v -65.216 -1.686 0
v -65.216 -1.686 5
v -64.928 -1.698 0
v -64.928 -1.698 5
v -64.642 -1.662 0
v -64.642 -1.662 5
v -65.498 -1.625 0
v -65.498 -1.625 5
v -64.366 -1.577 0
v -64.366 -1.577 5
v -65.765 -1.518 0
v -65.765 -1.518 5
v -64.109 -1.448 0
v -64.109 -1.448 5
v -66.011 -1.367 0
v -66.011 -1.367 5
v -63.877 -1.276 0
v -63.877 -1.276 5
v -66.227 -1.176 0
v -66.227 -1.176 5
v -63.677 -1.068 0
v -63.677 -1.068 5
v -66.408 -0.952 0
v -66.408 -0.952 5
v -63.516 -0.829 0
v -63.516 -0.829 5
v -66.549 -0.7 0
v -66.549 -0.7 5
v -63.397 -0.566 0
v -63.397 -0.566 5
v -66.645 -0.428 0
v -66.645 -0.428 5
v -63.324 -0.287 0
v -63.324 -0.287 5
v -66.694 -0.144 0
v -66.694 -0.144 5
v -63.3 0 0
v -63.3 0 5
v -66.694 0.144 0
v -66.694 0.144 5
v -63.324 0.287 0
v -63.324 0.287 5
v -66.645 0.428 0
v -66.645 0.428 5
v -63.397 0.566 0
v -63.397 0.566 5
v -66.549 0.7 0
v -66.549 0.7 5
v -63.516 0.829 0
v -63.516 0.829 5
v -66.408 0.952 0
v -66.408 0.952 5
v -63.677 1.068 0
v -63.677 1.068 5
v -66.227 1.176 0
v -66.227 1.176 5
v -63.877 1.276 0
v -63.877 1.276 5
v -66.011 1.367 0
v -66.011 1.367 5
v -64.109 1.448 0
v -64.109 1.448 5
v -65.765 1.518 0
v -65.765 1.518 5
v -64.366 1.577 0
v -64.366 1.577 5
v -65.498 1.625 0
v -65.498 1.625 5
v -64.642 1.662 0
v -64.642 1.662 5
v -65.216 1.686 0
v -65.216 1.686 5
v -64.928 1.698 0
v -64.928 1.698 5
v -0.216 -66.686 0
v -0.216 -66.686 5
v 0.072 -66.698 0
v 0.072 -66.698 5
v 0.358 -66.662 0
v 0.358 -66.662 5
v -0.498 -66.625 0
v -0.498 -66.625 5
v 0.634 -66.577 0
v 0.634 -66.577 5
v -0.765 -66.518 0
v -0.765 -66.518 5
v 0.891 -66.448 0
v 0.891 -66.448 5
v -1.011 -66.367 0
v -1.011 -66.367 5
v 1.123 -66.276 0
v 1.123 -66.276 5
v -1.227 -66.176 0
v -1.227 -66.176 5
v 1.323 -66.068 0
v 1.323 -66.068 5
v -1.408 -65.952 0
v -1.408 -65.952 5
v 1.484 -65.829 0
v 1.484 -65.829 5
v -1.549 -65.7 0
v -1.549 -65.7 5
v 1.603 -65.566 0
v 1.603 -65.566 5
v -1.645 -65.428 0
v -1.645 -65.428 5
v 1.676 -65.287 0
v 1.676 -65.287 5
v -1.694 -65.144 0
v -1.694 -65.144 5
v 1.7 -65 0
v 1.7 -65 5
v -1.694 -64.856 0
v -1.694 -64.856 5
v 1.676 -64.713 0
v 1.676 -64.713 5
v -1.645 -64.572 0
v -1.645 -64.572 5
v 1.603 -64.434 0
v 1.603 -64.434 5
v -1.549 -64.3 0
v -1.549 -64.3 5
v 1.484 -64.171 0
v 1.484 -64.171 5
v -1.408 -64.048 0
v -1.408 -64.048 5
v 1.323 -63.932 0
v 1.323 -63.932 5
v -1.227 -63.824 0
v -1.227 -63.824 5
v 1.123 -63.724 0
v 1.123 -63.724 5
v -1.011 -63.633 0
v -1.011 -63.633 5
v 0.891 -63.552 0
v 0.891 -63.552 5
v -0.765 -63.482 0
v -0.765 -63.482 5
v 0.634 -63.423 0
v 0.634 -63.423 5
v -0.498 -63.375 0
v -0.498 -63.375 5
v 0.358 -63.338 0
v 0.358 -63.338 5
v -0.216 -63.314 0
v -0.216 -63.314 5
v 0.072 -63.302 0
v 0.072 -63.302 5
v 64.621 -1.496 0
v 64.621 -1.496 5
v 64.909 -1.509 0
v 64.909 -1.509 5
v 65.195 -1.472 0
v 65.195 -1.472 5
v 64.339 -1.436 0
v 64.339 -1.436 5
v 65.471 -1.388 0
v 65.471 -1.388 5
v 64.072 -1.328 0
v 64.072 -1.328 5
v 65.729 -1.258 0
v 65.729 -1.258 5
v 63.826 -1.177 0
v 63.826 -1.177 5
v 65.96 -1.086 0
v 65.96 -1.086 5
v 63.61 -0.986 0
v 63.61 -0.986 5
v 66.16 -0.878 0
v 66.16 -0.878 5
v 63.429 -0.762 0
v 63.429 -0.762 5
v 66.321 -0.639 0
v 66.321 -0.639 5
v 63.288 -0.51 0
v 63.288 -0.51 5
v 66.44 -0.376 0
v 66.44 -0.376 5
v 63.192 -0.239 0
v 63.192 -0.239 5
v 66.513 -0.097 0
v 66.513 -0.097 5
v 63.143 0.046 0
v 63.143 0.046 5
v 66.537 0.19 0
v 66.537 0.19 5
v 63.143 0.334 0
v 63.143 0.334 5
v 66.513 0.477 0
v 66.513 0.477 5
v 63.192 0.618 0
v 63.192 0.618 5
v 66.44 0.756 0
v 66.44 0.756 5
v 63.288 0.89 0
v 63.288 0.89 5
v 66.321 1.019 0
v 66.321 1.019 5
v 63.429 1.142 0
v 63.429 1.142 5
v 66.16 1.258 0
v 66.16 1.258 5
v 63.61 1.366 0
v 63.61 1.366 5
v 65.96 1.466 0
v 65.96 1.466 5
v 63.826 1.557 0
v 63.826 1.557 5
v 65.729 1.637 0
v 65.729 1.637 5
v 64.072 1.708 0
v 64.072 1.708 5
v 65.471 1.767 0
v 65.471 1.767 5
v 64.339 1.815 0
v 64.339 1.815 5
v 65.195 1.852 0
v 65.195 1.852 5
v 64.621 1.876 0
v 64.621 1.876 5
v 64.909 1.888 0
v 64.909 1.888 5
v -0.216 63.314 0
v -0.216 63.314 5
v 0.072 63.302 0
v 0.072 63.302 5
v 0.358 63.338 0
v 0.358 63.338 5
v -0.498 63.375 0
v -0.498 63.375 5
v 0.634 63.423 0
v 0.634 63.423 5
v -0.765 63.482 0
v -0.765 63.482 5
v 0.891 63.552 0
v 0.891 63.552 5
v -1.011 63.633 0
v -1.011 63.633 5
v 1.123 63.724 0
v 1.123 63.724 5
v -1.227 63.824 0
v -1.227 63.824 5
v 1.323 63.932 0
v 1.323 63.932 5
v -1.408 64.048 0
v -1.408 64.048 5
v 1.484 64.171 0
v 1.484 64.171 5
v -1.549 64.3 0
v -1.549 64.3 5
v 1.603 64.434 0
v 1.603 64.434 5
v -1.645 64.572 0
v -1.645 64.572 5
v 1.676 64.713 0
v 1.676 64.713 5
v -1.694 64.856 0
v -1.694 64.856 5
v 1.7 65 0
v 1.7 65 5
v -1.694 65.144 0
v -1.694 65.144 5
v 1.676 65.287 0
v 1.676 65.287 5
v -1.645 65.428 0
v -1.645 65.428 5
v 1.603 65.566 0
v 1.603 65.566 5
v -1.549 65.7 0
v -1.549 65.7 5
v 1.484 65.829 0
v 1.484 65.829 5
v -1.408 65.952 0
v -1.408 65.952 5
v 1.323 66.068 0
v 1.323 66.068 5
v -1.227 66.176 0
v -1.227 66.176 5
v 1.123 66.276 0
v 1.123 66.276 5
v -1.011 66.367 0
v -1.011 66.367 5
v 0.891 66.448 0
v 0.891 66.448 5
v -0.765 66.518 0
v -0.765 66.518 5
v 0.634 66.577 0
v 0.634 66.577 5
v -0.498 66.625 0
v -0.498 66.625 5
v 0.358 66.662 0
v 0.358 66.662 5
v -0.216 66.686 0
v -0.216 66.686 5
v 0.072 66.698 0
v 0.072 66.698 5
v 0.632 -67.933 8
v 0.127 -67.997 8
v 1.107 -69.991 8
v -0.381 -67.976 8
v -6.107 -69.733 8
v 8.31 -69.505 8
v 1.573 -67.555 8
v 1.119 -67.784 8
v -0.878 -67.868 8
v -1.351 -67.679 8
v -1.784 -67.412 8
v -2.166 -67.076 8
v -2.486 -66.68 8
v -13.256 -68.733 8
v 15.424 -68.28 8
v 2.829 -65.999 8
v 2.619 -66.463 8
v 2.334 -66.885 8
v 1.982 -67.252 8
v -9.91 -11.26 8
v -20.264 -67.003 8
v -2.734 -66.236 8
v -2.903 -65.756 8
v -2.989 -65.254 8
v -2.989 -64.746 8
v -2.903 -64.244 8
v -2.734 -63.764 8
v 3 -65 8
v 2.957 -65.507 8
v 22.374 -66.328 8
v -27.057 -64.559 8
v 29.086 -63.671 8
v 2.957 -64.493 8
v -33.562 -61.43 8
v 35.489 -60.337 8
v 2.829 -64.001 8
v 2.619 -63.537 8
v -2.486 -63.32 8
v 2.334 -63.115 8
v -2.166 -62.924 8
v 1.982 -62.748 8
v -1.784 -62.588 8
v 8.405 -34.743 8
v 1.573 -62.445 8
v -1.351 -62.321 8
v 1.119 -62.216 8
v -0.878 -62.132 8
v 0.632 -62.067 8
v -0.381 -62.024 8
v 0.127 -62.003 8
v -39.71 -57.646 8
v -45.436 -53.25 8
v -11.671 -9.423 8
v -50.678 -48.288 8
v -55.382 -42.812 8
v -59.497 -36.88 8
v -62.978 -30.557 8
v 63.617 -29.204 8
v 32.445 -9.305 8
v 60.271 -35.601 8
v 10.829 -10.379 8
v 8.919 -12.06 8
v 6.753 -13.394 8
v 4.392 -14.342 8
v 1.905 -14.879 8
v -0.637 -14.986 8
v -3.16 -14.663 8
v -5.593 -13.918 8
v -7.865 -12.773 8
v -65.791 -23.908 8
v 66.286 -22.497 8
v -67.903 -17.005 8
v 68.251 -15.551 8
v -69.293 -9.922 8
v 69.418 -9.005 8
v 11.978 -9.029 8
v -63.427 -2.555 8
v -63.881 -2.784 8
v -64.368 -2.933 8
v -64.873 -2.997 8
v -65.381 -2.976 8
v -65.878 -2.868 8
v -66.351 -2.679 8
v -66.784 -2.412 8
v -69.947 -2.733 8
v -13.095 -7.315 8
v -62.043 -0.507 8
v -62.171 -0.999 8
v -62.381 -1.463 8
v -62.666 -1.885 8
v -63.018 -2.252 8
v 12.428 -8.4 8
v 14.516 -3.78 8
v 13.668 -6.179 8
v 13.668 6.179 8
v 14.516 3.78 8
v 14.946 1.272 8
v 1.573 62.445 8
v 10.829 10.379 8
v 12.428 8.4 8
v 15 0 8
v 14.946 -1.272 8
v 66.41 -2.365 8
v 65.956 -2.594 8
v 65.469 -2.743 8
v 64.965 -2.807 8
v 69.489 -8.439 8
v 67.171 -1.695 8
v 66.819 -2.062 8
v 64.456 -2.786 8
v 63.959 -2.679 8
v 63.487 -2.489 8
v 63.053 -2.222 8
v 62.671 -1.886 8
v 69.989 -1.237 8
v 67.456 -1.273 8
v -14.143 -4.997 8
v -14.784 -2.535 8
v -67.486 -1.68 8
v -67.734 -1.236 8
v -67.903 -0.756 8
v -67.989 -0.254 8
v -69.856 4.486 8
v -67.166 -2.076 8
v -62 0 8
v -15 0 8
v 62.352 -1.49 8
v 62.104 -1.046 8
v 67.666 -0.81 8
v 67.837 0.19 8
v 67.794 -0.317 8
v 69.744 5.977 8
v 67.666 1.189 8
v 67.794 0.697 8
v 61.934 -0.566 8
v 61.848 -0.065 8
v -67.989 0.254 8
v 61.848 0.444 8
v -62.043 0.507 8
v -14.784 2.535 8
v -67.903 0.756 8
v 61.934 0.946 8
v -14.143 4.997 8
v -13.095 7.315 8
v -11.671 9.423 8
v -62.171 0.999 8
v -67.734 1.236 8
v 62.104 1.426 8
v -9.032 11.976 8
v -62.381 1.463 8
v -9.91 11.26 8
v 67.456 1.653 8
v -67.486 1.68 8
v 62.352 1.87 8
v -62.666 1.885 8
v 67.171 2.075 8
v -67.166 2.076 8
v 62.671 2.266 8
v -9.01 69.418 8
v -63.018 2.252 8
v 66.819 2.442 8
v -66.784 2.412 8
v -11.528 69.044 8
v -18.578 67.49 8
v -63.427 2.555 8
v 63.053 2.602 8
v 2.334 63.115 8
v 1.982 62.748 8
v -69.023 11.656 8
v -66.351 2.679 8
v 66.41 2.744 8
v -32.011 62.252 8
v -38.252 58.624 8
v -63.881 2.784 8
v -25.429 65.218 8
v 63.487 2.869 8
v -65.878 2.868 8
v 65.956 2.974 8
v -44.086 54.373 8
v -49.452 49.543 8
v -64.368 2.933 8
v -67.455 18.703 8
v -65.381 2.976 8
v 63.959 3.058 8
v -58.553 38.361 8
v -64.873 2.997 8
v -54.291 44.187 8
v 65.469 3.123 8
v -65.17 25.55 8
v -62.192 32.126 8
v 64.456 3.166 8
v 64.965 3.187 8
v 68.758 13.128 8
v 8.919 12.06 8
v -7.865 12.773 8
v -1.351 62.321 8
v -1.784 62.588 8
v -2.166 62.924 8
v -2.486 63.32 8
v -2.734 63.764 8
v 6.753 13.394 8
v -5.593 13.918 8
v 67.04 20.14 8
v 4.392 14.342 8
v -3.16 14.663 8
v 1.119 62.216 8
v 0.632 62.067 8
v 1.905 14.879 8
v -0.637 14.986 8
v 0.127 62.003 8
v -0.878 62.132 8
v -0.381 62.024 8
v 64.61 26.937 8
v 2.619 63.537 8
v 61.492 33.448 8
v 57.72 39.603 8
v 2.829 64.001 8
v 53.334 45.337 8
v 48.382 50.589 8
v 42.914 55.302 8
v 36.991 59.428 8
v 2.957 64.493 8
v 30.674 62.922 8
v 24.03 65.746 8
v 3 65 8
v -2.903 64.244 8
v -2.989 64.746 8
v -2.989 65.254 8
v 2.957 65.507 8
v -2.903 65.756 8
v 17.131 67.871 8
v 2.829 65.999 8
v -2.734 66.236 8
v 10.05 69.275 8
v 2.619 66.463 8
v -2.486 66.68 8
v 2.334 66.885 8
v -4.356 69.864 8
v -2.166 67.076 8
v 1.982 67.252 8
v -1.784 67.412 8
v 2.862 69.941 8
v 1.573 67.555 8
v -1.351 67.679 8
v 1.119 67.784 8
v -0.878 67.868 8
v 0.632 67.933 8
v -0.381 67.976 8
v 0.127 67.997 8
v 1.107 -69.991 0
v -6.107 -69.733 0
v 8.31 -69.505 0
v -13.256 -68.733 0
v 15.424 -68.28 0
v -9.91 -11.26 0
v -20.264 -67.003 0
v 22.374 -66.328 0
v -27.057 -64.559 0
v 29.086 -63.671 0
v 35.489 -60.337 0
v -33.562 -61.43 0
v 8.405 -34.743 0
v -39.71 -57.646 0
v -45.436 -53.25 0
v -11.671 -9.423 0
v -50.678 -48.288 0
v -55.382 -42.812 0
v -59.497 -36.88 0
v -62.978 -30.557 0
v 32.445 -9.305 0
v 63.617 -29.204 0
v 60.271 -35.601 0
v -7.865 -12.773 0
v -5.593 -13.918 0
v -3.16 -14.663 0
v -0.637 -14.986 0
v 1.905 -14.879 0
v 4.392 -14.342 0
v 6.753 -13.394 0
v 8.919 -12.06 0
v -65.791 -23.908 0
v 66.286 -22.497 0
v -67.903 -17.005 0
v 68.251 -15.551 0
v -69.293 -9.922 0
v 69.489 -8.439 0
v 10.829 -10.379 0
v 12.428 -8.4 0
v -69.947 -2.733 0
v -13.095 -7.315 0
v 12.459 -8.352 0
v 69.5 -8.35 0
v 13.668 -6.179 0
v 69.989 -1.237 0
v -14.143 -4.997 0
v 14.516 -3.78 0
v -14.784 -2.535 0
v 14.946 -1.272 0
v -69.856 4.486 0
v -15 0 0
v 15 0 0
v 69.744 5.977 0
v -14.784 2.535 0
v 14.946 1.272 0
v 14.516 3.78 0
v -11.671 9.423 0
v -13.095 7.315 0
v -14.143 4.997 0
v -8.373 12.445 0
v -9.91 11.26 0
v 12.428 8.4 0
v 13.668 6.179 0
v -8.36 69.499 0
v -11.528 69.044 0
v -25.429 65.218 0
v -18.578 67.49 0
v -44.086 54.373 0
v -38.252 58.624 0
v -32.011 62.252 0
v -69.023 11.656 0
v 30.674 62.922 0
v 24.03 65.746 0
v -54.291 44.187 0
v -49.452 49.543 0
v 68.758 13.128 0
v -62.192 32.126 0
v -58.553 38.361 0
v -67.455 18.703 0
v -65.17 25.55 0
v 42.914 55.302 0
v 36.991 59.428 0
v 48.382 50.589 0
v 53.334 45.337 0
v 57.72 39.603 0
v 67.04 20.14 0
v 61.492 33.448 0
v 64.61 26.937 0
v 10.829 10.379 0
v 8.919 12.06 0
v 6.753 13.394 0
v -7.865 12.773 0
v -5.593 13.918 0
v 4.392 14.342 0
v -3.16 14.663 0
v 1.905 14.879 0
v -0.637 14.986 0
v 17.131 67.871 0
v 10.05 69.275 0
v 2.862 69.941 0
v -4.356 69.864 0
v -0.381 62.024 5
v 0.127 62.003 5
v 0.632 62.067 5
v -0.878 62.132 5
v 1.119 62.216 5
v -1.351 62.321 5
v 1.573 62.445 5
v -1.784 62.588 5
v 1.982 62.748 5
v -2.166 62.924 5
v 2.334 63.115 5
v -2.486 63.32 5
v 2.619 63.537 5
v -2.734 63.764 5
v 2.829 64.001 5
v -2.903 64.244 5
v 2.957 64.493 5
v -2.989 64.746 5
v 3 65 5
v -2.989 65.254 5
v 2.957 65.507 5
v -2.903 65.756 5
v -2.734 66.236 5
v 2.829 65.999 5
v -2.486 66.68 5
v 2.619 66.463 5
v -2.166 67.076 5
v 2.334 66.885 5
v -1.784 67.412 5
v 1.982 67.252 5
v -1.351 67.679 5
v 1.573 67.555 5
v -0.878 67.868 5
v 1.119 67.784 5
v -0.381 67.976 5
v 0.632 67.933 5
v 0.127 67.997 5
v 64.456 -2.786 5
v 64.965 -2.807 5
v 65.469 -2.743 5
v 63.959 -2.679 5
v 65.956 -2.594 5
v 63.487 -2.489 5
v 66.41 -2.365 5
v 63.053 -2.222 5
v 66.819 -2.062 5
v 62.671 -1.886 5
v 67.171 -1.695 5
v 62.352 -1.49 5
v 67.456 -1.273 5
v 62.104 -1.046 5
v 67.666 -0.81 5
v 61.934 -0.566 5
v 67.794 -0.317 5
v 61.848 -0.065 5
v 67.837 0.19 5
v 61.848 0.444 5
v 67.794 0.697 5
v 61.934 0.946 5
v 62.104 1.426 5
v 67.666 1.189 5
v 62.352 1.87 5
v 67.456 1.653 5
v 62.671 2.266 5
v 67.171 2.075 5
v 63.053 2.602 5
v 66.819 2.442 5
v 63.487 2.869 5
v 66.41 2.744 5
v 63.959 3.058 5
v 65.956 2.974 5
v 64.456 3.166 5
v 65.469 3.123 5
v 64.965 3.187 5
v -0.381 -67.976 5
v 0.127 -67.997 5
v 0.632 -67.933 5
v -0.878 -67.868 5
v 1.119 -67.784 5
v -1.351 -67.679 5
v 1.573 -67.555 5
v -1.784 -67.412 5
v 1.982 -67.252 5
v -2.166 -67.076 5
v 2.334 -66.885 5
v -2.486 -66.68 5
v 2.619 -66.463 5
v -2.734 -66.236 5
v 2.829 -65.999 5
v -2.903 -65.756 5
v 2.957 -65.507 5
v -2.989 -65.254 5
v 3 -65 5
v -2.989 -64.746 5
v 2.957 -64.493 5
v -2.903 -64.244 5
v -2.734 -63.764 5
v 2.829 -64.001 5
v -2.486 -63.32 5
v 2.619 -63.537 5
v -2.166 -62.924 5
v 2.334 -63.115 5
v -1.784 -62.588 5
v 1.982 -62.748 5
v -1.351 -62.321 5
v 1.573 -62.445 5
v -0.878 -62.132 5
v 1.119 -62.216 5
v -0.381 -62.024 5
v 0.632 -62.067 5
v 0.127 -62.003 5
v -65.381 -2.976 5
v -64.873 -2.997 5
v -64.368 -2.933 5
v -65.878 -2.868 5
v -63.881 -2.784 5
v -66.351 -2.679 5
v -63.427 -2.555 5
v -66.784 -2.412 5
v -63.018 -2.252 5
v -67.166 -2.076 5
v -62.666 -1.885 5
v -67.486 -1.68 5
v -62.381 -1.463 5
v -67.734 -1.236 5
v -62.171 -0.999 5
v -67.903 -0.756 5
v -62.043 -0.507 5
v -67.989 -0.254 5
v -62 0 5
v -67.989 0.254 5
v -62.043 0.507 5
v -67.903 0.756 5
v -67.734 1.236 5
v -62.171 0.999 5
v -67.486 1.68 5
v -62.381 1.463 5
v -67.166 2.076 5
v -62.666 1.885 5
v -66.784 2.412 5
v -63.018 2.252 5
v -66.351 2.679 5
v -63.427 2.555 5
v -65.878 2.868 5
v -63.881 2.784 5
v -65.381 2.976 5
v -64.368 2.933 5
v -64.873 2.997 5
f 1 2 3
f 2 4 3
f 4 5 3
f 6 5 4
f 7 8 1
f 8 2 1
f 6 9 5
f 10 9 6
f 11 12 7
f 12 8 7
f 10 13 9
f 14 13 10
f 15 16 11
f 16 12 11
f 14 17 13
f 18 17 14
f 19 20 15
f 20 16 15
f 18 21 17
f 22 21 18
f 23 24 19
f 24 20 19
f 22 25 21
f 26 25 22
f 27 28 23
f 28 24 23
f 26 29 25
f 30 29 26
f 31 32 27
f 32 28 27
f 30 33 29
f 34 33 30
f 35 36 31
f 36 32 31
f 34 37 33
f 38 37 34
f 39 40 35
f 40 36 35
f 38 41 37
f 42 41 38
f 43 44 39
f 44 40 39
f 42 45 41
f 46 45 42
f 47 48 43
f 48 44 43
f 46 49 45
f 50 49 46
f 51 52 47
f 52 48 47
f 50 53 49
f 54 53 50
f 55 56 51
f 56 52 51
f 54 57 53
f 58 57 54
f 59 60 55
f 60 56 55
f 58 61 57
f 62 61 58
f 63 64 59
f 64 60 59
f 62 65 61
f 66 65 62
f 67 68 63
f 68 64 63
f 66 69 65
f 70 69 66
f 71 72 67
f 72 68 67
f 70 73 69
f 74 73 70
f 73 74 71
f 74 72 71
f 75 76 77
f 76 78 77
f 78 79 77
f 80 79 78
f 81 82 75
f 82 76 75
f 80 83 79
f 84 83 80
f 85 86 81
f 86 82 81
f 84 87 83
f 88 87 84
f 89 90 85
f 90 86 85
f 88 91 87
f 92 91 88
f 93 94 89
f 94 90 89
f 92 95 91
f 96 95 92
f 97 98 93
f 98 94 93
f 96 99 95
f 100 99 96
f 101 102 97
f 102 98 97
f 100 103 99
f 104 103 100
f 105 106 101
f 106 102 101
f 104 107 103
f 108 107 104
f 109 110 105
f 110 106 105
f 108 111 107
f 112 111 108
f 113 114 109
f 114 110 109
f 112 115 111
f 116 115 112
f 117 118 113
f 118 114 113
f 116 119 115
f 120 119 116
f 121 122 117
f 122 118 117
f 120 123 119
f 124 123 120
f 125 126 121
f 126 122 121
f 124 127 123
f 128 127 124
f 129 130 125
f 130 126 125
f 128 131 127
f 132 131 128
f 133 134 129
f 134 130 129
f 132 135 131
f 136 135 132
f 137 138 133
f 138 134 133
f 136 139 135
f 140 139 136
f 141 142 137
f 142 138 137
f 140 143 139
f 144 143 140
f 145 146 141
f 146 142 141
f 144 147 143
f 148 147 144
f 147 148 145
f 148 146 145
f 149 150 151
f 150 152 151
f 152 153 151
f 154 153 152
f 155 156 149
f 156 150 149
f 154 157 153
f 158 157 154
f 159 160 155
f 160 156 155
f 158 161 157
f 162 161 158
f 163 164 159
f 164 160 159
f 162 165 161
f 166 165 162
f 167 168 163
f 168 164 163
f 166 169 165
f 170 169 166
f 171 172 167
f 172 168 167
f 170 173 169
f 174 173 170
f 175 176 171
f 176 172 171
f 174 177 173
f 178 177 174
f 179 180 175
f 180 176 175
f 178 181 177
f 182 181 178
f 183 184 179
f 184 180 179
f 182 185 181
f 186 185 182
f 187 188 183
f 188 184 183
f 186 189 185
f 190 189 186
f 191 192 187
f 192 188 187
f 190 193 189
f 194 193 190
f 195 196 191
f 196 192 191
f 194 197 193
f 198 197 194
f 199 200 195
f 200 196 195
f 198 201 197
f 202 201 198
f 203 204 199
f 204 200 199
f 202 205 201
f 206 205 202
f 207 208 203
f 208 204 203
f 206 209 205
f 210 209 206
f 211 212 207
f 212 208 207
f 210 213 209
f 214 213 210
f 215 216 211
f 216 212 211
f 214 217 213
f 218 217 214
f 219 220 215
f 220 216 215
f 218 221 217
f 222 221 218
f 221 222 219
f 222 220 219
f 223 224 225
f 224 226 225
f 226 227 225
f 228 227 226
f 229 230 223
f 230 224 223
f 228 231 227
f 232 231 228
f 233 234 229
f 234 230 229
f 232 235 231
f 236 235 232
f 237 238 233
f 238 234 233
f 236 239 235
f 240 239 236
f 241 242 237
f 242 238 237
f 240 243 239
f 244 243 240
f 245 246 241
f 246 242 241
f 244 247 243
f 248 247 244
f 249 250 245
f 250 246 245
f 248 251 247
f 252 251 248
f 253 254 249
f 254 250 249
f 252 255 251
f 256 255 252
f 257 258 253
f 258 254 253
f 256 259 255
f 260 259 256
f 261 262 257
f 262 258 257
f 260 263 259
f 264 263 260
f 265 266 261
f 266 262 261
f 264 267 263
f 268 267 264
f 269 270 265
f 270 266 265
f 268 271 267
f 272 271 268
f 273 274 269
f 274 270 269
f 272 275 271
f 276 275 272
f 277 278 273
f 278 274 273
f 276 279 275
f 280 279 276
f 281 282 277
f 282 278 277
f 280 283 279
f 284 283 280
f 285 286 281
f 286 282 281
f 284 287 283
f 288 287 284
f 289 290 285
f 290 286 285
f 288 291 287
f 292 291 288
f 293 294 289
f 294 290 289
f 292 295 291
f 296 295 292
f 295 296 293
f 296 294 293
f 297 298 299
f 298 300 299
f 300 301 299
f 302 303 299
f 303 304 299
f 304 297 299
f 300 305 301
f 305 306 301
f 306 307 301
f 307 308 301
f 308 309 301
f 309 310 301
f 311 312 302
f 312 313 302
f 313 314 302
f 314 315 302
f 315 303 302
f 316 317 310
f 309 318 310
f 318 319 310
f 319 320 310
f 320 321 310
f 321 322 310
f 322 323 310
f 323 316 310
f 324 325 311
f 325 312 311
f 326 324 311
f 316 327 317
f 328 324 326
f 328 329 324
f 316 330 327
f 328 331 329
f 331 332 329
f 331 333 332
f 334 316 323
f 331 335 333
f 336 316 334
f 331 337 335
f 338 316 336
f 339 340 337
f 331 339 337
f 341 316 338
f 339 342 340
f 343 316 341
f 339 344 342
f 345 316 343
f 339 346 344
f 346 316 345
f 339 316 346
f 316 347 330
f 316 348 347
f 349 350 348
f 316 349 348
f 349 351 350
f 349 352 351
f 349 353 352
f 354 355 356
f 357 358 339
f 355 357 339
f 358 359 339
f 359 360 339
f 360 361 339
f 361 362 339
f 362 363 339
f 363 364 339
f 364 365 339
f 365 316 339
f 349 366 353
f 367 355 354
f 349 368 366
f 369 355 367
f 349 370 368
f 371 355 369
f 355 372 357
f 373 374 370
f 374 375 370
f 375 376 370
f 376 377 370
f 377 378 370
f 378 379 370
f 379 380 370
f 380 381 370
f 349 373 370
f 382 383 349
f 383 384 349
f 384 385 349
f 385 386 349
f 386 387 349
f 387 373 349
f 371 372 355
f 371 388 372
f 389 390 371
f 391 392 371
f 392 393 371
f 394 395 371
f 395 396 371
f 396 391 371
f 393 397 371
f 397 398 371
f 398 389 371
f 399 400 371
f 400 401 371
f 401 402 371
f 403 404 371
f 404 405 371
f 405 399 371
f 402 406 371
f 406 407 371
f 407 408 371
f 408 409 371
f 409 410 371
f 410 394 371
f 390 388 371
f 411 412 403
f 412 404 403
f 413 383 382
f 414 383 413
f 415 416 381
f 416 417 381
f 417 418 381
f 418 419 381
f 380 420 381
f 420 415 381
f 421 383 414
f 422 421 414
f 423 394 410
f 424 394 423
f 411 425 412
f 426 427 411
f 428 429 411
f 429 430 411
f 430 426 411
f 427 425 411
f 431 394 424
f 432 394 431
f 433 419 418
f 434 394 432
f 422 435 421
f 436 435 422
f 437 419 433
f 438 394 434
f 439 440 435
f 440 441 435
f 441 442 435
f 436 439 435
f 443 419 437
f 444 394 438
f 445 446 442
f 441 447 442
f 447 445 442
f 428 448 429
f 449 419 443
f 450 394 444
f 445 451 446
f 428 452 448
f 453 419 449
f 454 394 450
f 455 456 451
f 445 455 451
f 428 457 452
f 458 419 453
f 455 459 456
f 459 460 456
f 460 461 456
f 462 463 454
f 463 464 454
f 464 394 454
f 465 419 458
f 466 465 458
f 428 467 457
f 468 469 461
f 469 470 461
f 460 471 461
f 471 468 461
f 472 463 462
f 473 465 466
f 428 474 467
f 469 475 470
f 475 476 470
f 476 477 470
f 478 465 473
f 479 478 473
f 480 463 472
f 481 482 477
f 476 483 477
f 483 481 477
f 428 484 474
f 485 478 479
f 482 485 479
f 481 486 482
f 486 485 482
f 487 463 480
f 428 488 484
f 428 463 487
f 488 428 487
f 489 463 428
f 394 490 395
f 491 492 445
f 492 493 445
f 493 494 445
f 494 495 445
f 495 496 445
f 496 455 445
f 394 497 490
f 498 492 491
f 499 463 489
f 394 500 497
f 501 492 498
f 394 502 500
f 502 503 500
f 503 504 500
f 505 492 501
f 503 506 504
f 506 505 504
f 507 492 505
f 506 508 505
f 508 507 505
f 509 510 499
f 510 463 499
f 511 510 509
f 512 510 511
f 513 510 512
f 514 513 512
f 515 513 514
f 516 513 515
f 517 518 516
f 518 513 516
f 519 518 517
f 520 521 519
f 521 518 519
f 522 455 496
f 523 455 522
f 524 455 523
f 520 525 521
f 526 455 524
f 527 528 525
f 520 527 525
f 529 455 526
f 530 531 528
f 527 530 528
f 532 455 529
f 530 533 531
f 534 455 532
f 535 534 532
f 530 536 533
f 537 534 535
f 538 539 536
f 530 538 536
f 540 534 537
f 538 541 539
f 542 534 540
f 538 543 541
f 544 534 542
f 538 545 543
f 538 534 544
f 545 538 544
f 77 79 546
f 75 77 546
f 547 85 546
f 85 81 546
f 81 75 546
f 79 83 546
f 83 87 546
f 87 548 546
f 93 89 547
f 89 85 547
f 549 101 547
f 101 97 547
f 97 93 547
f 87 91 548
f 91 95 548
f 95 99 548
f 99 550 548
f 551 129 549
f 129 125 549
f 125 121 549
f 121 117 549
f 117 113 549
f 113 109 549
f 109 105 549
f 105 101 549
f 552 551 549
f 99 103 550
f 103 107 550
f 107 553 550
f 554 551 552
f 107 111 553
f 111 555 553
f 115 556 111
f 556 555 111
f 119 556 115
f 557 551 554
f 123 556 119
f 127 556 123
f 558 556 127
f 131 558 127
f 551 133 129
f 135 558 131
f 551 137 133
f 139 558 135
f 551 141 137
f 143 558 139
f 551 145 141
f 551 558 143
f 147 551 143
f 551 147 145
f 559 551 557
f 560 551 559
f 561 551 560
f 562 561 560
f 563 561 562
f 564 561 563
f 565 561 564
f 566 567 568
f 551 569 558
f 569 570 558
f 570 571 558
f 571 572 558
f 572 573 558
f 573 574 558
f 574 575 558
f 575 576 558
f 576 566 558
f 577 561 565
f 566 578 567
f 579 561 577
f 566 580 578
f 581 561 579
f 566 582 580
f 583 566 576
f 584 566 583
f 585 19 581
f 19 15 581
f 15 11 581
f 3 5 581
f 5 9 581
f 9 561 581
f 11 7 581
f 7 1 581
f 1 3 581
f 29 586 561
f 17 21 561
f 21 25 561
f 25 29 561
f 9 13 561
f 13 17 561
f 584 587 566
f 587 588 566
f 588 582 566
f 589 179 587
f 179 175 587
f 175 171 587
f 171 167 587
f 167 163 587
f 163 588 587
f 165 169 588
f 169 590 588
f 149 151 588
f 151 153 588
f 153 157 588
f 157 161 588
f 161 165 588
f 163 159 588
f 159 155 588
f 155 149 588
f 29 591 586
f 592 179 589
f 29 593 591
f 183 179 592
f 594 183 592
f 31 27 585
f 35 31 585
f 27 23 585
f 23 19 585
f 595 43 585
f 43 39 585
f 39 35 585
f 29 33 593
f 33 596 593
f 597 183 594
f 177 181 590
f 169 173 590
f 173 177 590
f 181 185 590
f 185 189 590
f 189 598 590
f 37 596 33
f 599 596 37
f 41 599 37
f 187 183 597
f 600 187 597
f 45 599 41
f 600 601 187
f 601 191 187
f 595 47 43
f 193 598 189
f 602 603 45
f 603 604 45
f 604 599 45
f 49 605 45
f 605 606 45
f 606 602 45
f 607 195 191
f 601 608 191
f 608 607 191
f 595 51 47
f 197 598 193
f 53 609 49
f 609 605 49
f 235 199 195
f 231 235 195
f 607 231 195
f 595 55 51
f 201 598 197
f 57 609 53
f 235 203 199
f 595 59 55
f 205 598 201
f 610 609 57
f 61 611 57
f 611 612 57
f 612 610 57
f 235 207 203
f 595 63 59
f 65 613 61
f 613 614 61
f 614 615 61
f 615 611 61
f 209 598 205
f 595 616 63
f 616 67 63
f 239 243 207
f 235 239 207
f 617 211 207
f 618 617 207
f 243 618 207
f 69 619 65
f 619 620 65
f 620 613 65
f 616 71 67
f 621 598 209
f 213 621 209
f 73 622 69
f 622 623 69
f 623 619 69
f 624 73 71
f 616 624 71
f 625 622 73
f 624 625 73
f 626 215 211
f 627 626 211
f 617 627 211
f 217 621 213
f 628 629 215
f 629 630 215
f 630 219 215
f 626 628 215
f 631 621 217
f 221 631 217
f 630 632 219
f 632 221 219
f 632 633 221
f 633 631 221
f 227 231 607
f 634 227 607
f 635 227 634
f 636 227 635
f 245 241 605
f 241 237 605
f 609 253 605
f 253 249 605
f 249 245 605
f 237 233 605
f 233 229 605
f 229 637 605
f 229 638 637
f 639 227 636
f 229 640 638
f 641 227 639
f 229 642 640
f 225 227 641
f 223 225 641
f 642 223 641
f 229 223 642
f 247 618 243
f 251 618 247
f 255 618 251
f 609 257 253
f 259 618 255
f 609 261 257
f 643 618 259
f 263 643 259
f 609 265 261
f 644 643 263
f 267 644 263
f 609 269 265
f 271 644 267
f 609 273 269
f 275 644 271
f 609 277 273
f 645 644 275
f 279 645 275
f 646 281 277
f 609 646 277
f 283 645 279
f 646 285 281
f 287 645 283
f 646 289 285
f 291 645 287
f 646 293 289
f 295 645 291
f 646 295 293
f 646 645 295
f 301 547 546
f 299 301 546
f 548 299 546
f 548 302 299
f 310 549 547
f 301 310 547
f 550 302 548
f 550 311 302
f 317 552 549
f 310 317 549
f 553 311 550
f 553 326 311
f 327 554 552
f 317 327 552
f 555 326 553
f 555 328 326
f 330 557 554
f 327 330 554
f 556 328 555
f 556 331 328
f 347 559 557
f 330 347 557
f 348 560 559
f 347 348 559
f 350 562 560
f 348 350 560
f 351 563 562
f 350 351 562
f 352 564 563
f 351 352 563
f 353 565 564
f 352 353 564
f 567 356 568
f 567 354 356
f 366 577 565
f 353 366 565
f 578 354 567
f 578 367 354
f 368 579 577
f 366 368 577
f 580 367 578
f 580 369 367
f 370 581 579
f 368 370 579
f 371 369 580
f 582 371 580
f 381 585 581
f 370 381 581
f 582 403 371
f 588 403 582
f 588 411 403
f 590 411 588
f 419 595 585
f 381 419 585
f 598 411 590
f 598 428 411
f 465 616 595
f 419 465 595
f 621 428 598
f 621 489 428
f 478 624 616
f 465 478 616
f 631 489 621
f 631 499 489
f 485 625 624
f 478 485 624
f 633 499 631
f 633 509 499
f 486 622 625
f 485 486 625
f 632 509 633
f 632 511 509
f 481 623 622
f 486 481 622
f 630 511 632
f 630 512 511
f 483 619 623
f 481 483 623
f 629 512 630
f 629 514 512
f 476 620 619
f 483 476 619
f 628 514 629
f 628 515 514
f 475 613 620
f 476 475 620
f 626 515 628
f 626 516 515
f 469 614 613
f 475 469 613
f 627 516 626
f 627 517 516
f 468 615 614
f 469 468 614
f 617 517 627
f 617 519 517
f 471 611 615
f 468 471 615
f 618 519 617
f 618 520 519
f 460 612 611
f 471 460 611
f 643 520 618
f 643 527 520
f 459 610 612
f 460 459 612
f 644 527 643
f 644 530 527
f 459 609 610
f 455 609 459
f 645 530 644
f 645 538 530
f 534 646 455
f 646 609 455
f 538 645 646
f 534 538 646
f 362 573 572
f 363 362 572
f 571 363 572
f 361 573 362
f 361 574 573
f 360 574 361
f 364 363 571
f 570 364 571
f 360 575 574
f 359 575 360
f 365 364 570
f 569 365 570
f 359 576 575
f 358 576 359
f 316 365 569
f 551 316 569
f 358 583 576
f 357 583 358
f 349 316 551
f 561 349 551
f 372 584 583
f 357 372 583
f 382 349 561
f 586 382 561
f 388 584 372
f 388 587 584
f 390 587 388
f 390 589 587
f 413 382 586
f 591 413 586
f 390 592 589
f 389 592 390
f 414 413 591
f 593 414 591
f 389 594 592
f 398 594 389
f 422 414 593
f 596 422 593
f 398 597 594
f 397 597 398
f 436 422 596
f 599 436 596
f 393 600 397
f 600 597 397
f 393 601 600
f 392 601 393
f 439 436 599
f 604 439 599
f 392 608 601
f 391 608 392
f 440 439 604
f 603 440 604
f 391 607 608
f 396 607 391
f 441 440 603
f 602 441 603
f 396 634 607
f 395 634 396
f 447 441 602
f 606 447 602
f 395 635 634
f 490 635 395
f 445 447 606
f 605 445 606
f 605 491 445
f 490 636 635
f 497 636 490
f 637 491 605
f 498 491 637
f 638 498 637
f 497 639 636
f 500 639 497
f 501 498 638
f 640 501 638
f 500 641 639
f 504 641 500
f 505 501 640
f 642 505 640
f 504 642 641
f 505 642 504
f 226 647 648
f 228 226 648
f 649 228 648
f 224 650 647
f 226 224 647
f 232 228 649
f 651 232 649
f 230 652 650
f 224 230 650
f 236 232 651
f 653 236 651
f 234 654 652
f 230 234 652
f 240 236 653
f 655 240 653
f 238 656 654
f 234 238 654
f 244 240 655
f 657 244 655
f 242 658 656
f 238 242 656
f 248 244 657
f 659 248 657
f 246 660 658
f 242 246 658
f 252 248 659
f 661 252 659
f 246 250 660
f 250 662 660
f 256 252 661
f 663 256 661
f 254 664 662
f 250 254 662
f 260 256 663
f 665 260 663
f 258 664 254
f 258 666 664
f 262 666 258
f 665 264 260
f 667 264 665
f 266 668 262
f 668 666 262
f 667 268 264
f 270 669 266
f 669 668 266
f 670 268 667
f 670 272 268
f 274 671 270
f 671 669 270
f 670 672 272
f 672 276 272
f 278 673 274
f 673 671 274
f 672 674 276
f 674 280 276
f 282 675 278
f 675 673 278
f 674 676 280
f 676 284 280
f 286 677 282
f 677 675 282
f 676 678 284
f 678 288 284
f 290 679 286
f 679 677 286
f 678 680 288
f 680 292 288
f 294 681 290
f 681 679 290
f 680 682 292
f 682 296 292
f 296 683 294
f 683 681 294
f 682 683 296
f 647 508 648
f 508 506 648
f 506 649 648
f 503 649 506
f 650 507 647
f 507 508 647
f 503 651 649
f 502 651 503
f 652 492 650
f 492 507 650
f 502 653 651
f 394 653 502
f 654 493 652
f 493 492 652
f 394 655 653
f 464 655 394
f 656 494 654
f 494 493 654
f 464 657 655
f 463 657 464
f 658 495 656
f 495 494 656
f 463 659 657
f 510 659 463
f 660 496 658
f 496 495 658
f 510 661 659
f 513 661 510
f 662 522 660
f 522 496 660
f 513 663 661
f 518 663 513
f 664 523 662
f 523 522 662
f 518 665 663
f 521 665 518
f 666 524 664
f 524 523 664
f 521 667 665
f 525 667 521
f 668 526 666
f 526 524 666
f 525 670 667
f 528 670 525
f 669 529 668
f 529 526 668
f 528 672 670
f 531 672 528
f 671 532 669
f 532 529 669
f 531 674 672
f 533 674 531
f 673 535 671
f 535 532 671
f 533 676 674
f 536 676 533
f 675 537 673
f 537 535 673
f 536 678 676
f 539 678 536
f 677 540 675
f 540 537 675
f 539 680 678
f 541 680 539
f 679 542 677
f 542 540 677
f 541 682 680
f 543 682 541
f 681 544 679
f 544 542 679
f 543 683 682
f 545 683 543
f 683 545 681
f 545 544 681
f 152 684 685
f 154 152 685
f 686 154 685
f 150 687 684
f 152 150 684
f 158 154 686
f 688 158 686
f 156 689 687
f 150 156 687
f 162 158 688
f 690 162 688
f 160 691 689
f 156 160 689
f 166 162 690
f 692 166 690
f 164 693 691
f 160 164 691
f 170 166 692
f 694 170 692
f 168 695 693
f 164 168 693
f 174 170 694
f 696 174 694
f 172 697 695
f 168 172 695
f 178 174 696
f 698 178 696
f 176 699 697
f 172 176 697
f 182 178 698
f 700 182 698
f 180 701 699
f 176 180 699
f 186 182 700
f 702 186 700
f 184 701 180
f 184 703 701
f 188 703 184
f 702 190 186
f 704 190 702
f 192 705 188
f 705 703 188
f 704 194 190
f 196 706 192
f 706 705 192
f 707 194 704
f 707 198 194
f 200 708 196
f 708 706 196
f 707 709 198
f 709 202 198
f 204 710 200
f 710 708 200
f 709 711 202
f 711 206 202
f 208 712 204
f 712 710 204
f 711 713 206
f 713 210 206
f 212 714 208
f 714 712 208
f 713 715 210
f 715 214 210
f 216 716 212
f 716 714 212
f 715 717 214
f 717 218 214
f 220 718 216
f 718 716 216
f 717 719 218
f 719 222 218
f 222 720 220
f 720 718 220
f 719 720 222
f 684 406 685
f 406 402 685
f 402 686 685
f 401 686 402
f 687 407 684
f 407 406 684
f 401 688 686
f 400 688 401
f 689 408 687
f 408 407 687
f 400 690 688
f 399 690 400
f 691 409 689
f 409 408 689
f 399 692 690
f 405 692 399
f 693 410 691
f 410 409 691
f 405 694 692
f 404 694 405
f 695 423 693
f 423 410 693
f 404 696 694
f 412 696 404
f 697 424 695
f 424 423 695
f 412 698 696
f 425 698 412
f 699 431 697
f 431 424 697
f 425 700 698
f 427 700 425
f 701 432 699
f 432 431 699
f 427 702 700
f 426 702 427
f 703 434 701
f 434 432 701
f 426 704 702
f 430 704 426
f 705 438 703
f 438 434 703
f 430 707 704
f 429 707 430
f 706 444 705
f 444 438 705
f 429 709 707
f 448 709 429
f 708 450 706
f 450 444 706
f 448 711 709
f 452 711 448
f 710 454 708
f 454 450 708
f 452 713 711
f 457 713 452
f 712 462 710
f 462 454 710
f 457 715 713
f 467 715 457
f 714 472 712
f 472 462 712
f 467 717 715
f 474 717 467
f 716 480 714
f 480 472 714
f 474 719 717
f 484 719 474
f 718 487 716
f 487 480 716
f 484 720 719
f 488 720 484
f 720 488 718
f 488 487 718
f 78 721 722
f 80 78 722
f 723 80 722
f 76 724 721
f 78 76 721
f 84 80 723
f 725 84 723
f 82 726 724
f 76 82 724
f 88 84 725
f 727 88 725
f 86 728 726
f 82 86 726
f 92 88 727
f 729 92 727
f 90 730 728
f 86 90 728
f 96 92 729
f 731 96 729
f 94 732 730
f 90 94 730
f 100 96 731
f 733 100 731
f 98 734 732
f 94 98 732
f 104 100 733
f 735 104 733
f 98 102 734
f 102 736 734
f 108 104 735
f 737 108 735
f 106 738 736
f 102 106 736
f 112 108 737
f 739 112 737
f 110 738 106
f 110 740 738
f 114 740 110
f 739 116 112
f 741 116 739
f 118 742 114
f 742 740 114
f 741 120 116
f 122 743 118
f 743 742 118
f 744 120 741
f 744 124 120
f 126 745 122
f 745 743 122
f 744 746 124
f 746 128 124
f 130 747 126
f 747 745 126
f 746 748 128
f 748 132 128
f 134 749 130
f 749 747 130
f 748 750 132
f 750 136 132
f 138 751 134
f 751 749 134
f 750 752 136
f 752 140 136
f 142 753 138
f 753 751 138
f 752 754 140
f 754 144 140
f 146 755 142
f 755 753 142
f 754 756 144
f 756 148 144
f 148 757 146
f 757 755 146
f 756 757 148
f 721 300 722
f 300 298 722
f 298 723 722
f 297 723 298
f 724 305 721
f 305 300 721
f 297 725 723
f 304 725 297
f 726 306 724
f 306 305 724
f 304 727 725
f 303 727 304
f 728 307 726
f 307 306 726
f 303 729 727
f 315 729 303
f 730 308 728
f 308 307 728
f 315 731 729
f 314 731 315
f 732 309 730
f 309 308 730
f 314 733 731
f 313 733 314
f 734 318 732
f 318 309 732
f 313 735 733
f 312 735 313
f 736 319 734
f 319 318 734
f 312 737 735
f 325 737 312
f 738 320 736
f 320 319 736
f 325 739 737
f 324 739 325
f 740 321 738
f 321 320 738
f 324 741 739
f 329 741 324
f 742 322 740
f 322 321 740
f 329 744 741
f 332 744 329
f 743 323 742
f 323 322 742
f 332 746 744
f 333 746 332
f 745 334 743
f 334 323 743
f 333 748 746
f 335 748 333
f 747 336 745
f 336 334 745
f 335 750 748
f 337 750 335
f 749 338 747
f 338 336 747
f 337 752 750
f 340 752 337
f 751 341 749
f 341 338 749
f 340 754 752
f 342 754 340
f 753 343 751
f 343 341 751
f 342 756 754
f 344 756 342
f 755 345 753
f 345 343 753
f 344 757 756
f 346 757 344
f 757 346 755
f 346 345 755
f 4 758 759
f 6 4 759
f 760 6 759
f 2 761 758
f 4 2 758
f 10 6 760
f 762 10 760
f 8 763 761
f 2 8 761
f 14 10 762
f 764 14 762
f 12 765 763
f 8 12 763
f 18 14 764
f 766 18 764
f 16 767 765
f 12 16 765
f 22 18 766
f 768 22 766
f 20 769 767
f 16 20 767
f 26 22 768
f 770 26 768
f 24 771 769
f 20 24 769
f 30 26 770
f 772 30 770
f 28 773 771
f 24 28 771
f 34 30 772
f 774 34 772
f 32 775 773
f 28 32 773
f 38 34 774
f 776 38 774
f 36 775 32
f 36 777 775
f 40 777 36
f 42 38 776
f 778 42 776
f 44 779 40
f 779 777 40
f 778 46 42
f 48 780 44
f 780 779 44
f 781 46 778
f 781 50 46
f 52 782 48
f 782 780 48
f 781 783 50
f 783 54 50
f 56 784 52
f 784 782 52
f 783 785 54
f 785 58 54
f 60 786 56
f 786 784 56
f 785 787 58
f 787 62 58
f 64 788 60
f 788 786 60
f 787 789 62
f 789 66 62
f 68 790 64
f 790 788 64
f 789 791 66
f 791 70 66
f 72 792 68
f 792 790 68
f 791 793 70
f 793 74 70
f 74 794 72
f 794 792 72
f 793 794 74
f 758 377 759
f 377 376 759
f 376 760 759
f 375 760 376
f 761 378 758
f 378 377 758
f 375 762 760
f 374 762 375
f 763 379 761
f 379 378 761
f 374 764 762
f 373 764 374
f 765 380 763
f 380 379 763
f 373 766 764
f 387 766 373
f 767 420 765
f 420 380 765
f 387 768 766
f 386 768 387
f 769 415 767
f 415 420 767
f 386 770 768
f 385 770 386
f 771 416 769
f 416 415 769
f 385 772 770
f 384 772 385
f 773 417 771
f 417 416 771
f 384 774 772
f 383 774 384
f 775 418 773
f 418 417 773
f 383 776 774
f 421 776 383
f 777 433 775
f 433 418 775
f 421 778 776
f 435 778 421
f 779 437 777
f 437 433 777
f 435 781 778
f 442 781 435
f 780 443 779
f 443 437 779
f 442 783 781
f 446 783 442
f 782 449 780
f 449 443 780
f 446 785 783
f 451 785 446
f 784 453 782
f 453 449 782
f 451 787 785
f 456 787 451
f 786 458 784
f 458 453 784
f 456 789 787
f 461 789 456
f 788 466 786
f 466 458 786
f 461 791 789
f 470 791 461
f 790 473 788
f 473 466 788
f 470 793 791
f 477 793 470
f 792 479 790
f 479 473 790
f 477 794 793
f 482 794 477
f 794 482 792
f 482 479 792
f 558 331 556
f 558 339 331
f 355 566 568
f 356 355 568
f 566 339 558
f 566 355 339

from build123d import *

# Parameters (mm, degrees)
SKIZZE1_R                       = 70
SKIZZE1_R_2                     = 15
AUFSATZ_LINEAR_AUSTRAGEN1_DEPTH = 8
SKIZZE2_R                       = 1.7
SCHNITT_LINEAR_AUSTRAGEN1_DEPTH = 8
SKIZZE3_R                       = 3
SCHNITT_LINEAR_AUSTRAGEN2_DEPTH = 3
SCHNITT_LINEAR_AUSTRAGEN3_DEPTH = 8


with BuildPart() as part:
    # Skizze1 → Aufsatz-Linear austragen1 (new body)
    with BuildSketch(Plane(origin=(0, 0, 0), x_dir=(0, 1, 0), z_dir=(0, 0, 1))):
        with Locations(Location((0, 0, 0), (0, 0, 270))):
            Circle(SKIZZE1_R)
        with Locations(Location((0, 0, 0), (0, 0, 270))):
            Circle(SKIZZE1_R_2, mode=Mode.SUBTRACT)
    extrude(amount=AUFSATZ_LINEAR_AUSTRAGEN1_DEPTH)

    # Skizze2 → Schnitt-Linear austragen1 (cut)
    with BuildSketch(Plane.XY.offset(8)):
        with Locations((0, 65)):
            Circle(SKIZZE2_R)
        with Locations((64.837196687, 0.18986002)):
            Circle(SKIZZE2_R)
        with Locations((0, -65)):
            Circle(SKIZZE2_R)
        with Locations((-65, 0)):
            Circle(SKIZZE2_R)
    extrude(amount=-SCHNITT_LINEAR_AUSTRAGEN1_DEPTH, mode=Mode.SUBTRACT)

    # Skizze3 → Schnitt-Linear austragen2 (cut)
    with BuildSketch(Plane.XY.offset(8)):
        with Locations((0, 65)):
            Circle(SKIZZE3_R)
        with Locations((64.837196687, 0.18986002)):
            Circle(SKIZZE3_R)
        with Locations((0, -65)):
            Circle(SKIZZE3_R)
        with Locations((-65, 0)):
            Circle(SKIZZE3_R)
    extrude(amount=-SCHNITT_LINEAR_AUSTRAGEN2_DEPTH, mode=Mode.SUBTRACT)

    # Skizze4 → Schnitt-Linear austragen3 (cut)
    with BuildSketch(Plane.XY.offset(8)):
        Polygon((66.550324449, -89.690139622), (8.405353871, -34.743234372), (32.444624917, -9.304809744), (90.589595495, -64.251714994), align=None)
    extrude(amount=-SCHNITT_LINEAR_AUSTRAGEN3_DEPTH, mode=Mode.SUBTRACT)


solid = part.part
